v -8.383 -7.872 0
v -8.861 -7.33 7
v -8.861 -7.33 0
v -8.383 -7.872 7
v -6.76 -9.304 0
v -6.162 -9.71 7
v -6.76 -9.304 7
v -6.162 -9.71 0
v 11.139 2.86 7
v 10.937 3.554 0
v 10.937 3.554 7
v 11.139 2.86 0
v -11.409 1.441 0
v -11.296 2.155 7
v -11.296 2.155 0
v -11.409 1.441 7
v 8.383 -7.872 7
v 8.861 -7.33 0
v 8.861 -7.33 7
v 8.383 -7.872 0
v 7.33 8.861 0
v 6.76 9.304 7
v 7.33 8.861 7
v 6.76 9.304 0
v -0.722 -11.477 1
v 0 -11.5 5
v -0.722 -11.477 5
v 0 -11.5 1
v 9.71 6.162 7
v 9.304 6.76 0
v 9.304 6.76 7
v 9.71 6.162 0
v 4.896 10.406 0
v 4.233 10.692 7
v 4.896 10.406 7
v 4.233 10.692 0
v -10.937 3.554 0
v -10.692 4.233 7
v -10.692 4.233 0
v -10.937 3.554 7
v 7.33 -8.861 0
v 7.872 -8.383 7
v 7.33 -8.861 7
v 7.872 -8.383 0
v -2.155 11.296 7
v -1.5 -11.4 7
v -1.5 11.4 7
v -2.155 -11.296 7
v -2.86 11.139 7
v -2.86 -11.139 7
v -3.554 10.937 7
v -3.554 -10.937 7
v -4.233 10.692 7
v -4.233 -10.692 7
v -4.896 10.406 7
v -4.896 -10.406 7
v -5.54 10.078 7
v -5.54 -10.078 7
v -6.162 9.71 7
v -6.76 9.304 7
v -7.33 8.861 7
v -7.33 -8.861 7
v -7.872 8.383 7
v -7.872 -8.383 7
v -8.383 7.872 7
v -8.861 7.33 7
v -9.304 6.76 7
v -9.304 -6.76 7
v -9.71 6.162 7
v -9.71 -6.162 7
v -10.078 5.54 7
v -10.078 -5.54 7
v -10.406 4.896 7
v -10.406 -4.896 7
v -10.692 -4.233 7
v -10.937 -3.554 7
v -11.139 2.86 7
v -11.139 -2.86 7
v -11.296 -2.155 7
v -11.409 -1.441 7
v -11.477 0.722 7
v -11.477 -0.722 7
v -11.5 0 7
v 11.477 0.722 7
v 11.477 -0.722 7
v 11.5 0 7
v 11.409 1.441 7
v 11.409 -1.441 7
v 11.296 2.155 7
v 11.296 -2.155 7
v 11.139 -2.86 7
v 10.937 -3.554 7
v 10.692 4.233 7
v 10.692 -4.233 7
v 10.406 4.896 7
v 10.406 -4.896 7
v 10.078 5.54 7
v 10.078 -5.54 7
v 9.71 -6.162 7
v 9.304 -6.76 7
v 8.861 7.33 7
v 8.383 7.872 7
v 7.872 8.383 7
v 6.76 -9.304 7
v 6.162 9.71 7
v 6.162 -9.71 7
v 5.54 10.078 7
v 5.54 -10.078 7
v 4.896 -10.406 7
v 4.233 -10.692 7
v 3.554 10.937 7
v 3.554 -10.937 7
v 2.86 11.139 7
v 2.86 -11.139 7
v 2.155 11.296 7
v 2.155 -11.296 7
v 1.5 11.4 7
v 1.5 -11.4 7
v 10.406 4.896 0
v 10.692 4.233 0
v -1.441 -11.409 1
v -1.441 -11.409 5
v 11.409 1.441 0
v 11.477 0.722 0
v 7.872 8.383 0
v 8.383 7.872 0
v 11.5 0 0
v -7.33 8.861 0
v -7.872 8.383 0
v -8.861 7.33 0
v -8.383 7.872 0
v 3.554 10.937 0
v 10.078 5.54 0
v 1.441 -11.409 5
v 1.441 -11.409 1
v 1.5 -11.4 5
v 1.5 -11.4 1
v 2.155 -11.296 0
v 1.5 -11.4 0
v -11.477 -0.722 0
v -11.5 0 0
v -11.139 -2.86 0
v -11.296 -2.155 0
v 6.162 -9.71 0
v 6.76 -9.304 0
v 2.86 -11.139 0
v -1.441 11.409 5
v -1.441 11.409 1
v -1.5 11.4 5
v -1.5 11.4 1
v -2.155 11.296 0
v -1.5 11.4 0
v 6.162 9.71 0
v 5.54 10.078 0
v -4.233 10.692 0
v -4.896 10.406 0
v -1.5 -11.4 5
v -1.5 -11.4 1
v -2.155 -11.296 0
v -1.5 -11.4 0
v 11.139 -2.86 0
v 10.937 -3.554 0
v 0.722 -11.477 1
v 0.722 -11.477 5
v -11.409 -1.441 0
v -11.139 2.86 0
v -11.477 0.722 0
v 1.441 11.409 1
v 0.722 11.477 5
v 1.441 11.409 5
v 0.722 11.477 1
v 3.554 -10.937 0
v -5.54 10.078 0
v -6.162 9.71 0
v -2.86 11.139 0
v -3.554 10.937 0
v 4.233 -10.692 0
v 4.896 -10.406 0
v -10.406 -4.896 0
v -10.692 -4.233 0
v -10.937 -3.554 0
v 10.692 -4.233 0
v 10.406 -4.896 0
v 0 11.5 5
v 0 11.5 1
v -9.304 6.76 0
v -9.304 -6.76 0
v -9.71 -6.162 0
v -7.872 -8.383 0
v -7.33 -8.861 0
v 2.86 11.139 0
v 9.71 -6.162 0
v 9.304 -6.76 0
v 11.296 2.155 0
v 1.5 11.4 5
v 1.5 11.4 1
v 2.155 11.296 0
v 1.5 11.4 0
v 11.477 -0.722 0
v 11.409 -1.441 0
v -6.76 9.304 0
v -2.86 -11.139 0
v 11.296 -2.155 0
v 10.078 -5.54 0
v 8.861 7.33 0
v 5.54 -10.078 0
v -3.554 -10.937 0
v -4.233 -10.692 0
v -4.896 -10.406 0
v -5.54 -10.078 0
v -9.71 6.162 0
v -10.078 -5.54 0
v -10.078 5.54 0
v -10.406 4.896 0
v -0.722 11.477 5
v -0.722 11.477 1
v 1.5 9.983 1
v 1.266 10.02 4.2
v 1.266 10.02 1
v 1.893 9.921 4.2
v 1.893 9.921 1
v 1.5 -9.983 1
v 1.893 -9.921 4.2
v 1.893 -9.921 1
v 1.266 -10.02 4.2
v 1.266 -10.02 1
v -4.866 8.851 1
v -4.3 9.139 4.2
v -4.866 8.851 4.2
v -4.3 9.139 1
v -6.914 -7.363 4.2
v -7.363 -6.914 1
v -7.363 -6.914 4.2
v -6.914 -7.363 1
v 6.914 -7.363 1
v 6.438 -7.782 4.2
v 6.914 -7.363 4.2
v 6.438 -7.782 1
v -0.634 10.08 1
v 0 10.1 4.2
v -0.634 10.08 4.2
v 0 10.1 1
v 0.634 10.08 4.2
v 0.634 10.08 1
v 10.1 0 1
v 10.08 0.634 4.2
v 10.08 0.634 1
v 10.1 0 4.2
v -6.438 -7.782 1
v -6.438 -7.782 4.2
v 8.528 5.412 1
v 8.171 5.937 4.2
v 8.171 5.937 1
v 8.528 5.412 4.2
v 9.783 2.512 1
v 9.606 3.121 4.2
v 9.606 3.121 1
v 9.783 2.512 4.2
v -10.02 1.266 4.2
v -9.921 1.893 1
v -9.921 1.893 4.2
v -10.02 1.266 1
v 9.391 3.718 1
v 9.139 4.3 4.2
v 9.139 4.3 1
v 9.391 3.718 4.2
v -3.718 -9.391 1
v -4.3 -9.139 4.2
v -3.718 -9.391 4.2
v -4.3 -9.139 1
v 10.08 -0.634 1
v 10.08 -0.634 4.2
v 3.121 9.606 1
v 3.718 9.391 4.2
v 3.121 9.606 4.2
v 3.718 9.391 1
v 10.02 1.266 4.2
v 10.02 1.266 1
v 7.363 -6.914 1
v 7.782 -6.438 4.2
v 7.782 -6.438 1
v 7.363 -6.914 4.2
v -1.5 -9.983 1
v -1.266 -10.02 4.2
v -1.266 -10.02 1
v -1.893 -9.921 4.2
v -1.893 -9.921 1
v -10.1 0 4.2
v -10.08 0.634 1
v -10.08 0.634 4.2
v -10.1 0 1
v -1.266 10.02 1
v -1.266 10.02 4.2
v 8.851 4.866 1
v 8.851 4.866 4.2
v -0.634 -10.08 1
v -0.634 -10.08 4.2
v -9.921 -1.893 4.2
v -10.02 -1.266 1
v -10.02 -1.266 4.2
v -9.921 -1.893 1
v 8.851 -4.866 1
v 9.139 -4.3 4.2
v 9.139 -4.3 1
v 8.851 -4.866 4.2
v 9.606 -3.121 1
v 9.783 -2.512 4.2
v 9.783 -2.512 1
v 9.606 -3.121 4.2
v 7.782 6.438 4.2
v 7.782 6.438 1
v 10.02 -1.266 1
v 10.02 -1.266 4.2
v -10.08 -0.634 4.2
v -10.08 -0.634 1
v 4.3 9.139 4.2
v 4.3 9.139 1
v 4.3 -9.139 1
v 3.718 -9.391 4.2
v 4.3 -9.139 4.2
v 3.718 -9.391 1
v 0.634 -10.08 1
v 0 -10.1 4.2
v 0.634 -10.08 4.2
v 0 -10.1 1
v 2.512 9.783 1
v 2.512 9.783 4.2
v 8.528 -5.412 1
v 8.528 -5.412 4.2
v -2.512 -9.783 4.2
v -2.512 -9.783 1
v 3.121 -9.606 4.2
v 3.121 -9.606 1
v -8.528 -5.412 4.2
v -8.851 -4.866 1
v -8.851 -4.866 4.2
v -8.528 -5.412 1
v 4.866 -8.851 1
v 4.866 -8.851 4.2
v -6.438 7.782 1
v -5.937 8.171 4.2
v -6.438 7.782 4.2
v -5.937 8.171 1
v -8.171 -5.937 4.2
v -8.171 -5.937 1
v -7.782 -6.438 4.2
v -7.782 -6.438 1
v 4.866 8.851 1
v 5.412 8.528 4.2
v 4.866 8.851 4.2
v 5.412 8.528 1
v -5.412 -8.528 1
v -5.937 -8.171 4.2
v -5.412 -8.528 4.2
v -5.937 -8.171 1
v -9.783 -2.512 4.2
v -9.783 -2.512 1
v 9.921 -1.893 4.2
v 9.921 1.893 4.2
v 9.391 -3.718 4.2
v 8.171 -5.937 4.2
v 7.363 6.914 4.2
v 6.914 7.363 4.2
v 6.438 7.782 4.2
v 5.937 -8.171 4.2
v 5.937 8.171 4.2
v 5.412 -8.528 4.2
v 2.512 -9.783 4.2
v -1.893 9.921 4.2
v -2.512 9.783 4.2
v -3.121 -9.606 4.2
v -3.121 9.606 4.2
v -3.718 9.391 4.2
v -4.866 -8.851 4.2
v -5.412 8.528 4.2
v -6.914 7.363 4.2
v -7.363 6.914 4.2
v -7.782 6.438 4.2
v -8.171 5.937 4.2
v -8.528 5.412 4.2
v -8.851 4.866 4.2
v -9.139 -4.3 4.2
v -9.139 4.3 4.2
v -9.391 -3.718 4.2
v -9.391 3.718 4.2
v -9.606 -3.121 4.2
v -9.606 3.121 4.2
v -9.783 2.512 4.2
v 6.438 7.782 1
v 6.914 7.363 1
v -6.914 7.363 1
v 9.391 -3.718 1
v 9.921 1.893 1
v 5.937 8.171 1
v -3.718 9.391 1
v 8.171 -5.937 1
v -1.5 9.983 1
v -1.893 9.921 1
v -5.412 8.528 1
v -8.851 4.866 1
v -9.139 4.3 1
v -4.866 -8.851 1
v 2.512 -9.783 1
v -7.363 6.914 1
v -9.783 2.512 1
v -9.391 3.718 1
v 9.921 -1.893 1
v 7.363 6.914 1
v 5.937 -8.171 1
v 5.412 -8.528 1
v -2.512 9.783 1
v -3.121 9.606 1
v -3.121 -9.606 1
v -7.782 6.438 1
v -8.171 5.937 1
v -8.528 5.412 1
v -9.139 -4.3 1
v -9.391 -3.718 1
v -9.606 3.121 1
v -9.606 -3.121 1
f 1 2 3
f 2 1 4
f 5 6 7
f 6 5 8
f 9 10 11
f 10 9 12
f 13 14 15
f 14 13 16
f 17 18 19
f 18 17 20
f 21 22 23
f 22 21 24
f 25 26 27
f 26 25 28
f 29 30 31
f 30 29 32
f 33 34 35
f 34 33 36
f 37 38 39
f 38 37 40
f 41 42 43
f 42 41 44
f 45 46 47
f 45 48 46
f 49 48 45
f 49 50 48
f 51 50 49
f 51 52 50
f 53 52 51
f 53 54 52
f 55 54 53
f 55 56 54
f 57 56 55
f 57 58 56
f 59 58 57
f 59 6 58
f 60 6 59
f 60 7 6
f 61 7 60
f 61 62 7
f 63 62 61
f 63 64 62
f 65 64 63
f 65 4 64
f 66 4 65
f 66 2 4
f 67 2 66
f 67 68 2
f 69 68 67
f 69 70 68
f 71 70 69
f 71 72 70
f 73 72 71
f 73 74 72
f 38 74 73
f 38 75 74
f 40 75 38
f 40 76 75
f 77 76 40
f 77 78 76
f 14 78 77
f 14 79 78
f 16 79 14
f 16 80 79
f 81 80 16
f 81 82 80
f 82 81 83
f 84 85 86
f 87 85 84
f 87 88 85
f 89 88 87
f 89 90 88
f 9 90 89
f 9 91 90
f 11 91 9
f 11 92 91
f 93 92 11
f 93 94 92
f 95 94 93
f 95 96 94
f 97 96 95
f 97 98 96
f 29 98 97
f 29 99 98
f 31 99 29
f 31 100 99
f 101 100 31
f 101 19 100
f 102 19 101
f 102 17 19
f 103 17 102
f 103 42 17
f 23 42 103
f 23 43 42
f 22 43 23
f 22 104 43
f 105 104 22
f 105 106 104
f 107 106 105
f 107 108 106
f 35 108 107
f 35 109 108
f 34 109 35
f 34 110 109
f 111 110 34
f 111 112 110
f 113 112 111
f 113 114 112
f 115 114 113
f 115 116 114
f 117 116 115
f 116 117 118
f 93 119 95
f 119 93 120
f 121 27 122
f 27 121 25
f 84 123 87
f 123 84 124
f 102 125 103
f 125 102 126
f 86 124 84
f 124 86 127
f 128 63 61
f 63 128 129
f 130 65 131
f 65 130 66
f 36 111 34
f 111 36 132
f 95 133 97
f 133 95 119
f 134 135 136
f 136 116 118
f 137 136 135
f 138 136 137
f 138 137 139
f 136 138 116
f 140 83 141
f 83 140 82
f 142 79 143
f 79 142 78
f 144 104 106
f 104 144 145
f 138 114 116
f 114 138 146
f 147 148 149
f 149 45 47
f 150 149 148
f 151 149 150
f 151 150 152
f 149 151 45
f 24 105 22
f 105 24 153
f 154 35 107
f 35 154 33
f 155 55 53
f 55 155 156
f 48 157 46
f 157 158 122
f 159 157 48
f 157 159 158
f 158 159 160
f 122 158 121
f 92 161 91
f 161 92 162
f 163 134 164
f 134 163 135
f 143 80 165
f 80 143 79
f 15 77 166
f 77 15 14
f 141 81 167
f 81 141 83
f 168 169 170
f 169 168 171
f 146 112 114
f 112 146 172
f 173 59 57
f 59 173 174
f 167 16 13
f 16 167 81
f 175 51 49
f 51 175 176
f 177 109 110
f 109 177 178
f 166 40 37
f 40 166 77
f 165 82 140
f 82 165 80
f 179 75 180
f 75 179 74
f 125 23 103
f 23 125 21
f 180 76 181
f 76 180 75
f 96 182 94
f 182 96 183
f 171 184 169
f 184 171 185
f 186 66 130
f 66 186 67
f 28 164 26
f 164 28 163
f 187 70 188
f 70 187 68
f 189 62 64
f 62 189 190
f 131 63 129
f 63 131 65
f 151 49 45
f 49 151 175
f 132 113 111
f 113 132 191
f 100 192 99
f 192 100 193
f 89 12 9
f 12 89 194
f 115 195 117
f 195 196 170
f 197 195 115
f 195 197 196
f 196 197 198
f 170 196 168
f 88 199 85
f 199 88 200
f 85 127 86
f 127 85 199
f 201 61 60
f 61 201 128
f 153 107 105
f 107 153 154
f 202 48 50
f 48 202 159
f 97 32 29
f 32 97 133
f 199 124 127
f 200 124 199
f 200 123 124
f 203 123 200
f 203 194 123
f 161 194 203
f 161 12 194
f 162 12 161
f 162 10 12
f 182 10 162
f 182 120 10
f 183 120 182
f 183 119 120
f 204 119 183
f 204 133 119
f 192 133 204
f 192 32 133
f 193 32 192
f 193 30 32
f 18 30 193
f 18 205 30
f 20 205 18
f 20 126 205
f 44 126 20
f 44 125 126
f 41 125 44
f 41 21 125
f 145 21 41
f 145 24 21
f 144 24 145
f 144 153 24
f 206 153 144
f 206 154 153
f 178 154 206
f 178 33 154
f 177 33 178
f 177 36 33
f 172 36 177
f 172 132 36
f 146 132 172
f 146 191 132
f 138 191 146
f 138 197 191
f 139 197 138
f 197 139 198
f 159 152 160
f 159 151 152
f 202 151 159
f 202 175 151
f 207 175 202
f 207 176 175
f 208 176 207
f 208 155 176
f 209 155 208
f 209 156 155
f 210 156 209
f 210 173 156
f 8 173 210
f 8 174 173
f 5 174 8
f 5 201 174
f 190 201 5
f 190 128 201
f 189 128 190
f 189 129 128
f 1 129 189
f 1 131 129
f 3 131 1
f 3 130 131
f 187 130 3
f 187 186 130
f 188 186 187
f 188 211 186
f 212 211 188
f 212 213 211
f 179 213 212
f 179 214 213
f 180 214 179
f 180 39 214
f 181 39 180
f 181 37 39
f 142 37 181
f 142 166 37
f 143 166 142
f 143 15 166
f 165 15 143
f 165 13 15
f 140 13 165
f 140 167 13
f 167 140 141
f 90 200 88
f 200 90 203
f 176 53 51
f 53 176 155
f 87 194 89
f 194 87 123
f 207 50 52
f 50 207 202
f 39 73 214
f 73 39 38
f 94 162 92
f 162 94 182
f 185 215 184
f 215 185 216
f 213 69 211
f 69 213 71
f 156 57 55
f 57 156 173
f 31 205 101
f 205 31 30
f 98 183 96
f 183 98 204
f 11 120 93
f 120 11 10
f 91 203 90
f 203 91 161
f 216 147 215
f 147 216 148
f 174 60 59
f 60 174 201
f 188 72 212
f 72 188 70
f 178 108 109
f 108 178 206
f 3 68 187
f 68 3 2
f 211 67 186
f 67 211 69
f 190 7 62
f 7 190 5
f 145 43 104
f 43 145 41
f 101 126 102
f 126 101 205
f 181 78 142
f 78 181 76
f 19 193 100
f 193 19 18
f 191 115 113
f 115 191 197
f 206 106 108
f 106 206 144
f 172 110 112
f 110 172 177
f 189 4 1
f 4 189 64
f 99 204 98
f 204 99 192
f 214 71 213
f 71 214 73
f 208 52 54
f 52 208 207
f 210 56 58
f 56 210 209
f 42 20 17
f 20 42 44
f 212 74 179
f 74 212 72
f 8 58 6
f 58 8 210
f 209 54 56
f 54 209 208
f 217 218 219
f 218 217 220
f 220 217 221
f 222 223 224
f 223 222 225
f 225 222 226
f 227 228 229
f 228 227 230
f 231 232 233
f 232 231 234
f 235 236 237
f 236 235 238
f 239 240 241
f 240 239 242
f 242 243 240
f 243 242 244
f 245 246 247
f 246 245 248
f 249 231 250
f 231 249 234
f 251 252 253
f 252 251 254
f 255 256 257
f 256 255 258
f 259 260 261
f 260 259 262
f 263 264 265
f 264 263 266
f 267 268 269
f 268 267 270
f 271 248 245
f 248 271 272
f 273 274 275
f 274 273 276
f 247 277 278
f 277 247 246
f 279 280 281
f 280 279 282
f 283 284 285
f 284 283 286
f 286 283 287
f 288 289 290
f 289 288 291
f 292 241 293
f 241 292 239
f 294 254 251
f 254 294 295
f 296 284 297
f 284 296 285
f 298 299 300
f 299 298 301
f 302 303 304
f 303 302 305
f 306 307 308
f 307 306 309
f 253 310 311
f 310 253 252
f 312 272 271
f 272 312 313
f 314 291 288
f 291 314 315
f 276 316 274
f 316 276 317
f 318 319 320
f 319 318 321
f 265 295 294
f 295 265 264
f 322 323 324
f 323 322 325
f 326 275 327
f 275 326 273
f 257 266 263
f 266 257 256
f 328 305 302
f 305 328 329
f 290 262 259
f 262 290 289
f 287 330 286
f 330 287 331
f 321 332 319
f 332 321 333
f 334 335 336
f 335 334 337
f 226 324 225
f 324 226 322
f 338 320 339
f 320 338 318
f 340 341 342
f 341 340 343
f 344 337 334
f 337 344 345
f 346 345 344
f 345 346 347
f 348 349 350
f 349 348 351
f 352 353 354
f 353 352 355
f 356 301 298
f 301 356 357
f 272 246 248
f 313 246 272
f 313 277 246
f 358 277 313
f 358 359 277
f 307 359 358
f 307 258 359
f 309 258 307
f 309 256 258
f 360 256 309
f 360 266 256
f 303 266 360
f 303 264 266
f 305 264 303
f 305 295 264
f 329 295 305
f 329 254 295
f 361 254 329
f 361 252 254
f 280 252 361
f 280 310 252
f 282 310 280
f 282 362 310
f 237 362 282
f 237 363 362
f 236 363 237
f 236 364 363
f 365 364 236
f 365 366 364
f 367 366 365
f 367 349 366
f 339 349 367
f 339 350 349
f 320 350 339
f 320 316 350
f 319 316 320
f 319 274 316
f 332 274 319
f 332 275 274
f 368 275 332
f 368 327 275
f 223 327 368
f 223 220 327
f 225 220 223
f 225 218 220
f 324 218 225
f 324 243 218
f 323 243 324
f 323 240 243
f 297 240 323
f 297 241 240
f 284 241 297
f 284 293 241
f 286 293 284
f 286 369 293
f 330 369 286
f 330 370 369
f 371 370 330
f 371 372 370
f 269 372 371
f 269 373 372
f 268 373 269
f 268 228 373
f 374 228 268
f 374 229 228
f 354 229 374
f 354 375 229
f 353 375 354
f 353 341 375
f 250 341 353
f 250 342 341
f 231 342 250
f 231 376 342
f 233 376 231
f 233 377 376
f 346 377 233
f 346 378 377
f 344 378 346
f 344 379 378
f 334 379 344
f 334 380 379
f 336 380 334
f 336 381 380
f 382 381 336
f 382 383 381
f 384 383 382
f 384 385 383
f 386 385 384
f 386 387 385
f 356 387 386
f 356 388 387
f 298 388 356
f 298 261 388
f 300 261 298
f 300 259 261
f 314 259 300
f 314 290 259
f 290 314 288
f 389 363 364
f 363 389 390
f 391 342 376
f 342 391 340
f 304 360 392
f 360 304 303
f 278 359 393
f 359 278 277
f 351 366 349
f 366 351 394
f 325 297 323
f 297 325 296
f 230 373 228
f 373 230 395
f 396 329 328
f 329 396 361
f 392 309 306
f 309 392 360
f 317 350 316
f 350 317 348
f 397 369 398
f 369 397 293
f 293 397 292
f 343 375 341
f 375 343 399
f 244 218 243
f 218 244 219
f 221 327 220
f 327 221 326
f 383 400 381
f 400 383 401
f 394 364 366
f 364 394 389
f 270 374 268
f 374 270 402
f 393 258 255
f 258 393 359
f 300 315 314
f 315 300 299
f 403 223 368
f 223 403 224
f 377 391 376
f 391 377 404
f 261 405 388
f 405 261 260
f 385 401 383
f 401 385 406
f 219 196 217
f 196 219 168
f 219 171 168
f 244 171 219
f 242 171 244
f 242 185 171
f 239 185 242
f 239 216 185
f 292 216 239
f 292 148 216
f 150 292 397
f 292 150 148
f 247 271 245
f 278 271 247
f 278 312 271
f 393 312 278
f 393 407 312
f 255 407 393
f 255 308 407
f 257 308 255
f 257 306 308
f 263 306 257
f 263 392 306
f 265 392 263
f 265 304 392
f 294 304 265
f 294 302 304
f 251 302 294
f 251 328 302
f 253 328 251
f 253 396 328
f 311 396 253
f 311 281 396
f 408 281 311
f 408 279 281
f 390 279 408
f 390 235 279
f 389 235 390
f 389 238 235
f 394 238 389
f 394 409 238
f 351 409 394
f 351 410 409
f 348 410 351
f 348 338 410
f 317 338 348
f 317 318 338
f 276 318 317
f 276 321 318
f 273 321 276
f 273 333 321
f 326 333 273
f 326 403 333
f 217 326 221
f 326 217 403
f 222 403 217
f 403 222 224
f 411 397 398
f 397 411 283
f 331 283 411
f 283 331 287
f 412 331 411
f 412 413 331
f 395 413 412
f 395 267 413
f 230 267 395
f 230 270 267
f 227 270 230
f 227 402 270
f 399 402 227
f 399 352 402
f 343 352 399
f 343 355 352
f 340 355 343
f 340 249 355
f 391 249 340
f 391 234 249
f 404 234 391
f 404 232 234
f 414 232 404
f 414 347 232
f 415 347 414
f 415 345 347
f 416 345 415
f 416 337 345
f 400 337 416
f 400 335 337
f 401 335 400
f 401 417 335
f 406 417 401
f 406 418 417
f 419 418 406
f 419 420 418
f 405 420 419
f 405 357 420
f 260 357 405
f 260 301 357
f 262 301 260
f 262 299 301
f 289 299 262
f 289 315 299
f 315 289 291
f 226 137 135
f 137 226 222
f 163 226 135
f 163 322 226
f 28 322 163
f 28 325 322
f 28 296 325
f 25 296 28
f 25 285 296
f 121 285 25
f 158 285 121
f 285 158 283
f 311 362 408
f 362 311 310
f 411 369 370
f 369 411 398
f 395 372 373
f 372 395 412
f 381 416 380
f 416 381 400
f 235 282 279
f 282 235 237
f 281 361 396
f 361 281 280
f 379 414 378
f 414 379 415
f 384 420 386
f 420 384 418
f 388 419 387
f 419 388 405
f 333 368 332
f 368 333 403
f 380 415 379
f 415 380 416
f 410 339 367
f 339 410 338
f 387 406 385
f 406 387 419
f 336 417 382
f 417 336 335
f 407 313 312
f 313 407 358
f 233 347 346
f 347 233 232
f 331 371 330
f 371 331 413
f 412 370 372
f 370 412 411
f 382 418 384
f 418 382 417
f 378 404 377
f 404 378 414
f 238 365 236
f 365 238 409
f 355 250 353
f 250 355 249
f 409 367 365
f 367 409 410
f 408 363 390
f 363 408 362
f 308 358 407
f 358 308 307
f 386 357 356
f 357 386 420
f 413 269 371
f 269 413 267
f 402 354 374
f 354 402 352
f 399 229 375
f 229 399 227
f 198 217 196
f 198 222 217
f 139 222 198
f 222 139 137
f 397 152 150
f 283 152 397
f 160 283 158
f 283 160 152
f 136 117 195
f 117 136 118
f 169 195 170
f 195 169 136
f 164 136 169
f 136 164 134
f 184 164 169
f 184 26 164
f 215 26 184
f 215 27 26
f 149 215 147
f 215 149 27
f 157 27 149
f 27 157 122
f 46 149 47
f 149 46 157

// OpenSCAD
$fn = 100;

magnetDiameter = 20;
magnetHeight = 3;

clipDiameter = magnetDiameter + 3;

braceWidth = 3;
braceHeight = 1;

braceSlotHeight = 3;

margin = 0.2;

braceSlotLength = clipDiameter + 3;
clipHeight = braceHeight + magnetHeight + braceSlotHeight;

difference() {
  cylinder(h=clipHeight, d=clipDiameter);
  translate([0, 0, braceHeight]) cylinder(h=magnetHeight + margin, d=magnetDiameter + margin);
  translate([0, 0, (braceSlotHeight / 2) - 2]) cube(center=true, size=[braceWidth, braceSlotLength, braceSlotHeight]);
  translate([0, 0, -(braceSlotHeight / 2) + clipHeight + 1]) cube(center=true, size=[braceWidth, braceSlotLength, braceSlotHeight]);
}
